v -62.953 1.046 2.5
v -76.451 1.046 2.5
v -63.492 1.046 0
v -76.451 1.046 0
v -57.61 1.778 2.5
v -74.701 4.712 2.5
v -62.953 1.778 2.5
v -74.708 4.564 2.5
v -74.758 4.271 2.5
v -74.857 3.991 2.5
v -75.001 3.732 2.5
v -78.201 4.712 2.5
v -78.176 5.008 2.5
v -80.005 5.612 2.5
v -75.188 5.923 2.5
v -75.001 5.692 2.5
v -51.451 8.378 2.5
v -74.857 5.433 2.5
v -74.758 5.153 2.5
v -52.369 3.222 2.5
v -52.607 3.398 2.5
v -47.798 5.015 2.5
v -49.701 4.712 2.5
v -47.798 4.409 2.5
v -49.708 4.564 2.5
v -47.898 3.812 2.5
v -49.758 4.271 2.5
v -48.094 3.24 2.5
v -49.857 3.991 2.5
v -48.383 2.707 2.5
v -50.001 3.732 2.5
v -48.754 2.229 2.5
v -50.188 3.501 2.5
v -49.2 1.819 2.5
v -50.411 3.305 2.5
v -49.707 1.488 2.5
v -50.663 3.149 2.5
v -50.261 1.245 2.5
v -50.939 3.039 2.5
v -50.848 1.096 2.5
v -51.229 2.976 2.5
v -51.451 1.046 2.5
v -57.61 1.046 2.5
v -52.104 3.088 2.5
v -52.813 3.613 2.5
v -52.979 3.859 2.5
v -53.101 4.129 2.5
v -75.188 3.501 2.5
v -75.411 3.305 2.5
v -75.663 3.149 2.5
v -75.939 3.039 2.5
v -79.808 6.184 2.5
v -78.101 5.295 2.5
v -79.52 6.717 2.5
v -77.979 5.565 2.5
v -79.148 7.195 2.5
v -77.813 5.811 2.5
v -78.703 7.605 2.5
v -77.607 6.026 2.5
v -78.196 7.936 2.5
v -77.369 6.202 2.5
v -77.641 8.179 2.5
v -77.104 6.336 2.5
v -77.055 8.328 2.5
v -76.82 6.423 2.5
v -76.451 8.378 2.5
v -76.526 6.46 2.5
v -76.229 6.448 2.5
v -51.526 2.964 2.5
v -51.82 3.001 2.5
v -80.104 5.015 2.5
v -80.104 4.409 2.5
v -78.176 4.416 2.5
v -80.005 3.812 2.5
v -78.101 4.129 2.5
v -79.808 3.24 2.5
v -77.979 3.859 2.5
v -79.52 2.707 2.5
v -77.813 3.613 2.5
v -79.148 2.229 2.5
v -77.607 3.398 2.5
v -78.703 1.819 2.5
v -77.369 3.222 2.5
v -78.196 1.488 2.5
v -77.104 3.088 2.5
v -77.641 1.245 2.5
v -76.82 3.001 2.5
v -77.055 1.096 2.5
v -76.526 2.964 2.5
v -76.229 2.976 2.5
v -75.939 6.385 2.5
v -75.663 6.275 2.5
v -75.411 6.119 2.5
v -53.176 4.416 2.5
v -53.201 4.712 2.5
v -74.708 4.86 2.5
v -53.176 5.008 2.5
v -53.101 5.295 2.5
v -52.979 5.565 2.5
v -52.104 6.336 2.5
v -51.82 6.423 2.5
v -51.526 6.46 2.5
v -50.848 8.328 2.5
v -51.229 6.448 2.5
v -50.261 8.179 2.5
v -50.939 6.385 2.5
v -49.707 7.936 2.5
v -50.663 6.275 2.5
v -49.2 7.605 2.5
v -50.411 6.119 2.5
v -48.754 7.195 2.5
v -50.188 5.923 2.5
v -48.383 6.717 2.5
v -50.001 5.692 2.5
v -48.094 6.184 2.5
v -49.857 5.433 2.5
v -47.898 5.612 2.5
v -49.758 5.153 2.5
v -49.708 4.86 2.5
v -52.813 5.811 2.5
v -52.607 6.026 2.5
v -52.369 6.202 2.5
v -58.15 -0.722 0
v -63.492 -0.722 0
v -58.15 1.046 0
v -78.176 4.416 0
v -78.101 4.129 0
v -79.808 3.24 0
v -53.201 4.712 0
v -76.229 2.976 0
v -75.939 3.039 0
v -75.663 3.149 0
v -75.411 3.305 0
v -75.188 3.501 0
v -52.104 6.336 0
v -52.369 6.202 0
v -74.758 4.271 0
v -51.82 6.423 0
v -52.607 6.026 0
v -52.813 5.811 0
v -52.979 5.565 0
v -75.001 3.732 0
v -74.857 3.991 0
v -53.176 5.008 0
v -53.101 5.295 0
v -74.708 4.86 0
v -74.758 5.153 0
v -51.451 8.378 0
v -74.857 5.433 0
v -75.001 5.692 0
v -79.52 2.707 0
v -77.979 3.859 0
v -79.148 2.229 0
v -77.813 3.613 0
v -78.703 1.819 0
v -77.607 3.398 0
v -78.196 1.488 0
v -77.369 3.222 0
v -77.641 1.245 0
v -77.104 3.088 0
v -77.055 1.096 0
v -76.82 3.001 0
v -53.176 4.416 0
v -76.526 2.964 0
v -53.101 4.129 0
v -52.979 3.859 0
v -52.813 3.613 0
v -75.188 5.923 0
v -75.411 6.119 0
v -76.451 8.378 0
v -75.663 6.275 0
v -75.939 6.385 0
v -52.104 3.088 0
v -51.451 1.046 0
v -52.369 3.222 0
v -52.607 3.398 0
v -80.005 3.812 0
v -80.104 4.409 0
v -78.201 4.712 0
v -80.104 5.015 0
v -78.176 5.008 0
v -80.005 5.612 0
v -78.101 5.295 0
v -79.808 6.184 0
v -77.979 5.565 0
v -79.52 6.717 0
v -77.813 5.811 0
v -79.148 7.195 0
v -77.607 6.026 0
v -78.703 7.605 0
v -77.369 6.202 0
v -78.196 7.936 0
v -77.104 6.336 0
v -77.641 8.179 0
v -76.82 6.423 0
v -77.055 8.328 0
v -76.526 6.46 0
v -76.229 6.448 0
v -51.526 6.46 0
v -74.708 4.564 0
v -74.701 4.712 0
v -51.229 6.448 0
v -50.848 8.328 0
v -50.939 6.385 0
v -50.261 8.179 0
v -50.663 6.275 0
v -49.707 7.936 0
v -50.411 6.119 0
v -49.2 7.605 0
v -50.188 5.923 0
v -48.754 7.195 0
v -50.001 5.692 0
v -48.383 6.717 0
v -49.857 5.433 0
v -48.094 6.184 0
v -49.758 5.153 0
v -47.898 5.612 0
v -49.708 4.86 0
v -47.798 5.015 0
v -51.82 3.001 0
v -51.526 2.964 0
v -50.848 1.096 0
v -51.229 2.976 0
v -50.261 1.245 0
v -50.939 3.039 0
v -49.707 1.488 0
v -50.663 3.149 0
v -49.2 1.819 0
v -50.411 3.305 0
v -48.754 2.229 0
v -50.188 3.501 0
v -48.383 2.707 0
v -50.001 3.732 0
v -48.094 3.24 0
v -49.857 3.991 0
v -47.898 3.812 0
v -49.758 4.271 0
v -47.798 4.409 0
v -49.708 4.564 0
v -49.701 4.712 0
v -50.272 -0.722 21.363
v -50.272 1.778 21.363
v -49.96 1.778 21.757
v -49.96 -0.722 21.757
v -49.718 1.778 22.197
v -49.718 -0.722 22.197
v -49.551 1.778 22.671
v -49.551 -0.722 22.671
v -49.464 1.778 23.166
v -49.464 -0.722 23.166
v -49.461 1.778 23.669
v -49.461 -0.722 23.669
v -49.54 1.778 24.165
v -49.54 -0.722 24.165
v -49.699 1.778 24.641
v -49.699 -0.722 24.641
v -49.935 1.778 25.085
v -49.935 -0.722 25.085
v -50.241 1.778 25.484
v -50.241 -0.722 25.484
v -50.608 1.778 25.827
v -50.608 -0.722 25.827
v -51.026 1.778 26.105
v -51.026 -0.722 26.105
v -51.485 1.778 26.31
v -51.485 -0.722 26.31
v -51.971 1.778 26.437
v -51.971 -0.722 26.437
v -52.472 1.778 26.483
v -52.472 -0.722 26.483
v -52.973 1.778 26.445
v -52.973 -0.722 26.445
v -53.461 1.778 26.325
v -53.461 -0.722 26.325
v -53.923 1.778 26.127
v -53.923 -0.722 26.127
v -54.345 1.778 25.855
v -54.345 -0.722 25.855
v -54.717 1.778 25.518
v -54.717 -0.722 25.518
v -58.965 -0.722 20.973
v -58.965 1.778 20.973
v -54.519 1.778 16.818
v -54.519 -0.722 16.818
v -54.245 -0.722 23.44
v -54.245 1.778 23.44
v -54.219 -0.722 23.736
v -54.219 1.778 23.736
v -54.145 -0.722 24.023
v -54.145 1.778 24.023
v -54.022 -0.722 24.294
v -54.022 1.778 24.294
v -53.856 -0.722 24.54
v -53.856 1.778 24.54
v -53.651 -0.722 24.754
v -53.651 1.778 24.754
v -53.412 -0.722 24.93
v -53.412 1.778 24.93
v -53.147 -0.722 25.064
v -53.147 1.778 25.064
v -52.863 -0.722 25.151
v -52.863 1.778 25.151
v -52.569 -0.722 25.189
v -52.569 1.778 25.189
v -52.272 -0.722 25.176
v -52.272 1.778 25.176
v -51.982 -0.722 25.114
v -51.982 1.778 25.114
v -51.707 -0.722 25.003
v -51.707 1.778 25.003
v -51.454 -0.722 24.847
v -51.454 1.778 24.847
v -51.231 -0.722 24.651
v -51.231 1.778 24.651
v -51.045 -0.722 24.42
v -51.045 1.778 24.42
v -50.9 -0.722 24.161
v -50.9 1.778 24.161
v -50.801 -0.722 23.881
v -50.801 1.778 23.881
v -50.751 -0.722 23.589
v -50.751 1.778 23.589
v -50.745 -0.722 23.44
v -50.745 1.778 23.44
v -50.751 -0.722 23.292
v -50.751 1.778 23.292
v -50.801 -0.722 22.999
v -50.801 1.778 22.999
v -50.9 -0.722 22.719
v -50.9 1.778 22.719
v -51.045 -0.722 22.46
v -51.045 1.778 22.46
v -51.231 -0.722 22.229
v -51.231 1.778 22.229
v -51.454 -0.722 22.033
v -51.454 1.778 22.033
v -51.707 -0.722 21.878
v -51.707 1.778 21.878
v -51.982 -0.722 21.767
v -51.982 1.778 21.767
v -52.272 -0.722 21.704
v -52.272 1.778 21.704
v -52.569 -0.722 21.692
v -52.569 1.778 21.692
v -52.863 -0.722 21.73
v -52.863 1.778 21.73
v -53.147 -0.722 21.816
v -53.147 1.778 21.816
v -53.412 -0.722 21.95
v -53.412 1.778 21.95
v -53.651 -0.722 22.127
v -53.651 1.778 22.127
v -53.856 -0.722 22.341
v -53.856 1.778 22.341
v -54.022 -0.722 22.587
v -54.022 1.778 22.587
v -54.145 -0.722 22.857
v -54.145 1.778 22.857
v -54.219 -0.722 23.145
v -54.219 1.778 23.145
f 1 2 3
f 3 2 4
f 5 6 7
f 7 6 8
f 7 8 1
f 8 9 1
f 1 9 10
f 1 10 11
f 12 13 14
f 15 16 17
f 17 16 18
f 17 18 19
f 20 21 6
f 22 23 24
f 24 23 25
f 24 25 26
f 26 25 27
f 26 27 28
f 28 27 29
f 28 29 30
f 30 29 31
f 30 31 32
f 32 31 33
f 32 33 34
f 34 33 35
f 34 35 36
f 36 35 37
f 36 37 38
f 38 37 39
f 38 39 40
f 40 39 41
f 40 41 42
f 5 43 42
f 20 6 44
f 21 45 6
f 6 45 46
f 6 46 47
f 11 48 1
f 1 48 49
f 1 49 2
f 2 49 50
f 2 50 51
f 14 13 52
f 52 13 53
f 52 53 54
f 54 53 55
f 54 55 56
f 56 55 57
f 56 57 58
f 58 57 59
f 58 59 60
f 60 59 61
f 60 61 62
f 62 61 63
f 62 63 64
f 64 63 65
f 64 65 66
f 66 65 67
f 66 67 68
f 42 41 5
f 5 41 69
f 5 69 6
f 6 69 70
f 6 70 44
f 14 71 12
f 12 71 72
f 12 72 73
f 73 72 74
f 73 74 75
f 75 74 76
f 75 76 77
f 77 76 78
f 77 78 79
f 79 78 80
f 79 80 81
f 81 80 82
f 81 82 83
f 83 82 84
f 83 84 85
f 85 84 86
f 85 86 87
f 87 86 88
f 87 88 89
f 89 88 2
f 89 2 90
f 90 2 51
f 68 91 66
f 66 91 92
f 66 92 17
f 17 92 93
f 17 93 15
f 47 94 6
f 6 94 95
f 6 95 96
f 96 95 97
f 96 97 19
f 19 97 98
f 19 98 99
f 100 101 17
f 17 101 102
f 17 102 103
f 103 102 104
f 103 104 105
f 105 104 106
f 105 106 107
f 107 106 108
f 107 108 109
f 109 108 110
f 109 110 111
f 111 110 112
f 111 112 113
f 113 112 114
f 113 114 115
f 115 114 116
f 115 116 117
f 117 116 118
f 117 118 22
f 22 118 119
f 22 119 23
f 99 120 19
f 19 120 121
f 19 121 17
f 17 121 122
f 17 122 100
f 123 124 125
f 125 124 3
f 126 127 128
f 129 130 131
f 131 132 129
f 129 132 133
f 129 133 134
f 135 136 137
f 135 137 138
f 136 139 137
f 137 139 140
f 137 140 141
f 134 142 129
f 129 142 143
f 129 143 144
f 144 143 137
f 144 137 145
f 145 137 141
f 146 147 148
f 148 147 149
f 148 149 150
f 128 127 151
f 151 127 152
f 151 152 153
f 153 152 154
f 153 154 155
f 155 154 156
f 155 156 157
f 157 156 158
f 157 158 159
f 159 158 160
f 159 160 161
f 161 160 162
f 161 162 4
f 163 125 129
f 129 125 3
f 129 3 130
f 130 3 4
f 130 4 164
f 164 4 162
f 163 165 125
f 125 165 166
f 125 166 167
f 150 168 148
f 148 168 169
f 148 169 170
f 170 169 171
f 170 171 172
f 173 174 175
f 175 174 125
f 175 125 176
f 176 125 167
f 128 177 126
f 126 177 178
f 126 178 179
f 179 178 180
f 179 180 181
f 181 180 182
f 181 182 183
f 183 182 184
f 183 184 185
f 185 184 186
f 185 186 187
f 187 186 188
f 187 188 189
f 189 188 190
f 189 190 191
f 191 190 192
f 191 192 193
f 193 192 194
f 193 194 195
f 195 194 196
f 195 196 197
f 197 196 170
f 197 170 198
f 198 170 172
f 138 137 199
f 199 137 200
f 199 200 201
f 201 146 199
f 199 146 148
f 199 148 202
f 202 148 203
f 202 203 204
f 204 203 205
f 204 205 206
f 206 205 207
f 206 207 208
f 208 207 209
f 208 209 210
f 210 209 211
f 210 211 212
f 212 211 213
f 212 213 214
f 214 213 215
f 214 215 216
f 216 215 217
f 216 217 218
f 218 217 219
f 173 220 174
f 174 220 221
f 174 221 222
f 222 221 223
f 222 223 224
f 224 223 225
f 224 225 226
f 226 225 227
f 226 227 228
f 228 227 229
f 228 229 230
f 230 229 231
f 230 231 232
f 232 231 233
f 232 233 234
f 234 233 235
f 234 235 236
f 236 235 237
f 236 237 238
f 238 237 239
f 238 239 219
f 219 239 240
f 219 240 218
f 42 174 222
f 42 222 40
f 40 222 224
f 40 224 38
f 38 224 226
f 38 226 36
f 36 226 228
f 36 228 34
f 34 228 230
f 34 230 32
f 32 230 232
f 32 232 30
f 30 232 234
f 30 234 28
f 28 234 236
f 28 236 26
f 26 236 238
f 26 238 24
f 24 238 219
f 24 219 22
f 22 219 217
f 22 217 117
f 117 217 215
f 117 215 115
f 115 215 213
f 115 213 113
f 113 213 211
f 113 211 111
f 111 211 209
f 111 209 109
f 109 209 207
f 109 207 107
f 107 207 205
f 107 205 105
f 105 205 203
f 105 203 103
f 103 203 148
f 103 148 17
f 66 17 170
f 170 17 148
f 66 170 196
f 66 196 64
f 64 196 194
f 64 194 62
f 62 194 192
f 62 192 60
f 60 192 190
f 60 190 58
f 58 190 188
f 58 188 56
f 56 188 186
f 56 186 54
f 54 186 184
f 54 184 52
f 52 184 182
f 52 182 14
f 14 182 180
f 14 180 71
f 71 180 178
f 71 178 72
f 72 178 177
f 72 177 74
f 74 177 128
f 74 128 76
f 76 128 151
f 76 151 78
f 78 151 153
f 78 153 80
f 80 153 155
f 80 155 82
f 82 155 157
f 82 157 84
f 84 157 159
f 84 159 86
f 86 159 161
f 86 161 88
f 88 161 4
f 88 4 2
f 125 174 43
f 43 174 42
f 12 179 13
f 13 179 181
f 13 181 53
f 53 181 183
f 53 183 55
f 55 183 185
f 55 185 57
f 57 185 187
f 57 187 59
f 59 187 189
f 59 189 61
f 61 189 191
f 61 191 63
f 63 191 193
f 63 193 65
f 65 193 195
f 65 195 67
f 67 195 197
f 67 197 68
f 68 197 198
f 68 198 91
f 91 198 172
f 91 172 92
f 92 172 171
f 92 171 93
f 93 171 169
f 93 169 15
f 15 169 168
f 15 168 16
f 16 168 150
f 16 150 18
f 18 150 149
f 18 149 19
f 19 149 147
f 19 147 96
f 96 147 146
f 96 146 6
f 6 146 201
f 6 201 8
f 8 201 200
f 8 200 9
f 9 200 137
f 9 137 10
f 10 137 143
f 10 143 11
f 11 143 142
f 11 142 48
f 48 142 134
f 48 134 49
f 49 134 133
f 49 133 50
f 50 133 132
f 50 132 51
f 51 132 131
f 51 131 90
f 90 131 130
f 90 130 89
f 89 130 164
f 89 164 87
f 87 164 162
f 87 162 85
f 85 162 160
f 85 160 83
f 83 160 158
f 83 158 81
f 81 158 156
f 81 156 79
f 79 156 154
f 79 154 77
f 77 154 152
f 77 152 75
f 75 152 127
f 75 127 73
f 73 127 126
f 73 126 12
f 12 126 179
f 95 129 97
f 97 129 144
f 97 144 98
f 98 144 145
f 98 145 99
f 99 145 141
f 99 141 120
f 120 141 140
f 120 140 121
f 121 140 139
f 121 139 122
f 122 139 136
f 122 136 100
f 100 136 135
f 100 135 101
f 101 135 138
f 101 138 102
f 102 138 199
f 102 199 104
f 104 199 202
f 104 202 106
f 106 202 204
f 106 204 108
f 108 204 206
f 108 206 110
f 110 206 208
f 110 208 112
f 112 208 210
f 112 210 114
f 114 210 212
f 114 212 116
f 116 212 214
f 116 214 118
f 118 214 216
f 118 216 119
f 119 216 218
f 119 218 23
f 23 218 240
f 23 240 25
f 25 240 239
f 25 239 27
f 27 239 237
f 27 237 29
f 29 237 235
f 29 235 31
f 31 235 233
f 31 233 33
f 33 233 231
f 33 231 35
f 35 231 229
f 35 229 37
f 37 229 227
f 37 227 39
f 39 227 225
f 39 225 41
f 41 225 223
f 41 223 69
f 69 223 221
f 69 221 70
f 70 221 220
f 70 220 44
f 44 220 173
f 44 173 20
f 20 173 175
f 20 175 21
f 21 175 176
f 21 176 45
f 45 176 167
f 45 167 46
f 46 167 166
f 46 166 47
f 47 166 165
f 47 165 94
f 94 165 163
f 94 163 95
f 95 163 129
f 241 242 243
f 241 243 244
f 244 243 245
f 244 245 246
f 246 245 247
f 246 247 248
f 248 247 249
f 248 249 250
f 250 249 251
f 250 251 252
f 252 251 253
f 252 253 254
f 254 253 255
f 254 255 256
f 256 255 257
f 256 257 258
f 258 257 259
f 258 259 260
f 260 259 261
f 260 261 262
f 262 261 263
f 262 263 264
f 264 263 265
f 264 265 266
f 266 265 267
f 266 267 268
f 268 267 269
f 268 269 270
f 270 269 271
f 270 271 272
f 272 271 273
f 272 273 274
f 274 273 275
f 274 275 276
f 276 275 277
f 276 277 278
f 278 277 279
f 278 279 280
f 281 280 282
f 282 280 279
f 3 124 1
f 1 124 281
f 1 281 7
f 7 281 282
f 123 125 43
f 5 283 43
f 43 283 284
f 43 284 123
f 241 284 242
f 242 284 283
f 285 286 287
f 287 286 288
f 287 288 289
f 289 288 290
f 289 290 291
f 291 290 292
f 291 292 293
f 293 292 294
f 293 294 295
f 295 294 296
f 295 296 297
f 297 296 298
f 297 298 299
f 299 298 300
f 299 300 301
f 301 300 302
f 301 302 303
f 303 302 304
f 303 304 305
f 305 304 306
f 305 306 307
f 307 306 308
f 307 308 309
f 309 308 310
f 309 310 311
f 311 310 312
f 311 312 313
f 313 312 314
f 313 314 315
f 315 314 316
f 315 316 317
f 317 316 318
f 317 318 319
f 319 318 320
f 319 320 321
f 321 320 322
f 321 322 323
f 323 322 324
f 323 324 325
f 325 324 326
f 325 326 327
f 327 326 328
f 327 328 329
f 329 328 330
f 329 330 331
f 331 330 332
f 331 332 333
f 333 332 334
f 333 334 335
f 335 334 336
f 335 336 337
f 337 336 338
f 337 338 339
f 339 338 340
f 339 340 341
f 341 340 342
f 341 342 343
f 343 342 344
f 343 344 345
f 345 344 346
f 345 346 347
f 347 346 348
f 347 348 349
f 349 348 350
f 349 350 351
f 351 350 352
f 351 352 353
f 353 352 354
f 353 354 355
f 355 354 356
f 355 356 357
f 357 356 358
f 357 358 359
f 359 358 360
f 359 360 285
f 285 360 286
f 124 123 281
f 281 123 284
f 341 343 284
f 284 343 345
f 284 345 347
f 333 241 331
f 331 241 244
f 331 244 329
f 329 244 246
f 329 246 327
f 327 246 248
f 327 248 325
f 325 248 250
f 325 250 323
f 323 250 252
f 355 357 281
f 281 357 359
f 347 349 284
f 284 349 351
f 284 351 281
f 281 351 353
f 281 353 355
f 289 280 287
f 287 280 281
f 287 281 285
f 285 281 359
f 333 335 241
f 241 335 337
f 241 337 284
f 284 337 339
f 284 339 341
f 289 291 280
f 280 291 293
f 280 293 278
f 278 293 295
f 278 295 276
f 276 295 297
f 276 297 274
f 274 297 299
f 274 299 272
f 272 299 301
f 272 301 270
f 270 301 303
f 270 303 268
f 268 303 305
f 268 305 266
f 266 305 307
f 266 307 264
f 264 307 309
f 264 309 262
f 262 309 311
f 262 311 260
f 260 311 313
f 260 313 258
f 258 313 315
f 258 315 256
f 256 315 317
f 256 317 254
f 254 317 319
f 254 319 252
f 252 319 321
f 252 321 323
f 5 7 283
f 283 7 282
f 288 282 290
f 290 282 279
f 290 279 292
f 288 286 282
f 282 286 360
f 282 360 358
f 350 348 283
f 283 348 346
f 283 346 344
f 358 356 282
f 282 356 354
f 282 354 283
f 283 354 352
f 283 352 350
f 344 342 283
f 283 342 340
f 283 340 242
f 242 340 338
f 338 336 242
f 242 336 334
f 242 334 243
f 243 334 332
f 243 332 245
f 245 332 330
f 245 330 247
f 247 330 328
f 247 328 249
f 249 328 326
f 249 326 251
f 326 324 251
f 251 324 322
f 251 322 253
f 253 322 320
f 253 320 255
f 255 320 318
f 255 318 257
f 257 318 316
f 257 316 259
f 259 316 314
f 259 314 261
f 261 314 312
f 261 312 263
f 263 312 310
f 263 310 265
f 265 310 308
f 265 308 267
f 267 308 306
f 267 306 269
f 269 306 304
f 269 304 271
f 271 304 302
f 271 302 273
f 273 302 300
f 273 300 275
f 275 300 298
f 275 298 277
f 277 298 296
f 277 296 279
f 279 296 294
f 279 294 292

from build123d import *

# Parameters (mm, degrees)
SKETCH1_R           = 1.75
BOSS_EXTRUDE1_DEPTH = 2.5
SKETCH2_R           = 1.75
BOSS_EXTRUDE2_DEPTH = 2.5


with BuildPart() as part:
    # Sketch1 → Boss-Extrude1 (new body)
    with BuildSketch(Plane.XY):
        with BuildLine():
            Line((-51.451246925, 1.046447779), (-76.451246925, 1.046447779))
            ThreePointArc((-76.451246925, 1.046447779), (-80.116799147, 4.712), (-76.451246925, 8.377552221))
            Line((-76.451246925, 8.377552221), (-51.451246925, 8.377552221))
            ThreePointArc((-51.451246925, 8.377552221), (-47.785694704, 4.712), (-51.451246925, 1.046447779))
        make_face()
        with Locations((-76.451246925, 4.712)):
            Circle(SKETCH1_R, mode=Mode.SUBTRACT)
        with Locations((-51.451246925, 4.712)):
            Circle(SKETCH1_R, mode=Mode.SUBTRACT)
    extrude(amount=BOSS_EXTRUDE1_DEPTH)

    # Sketch2 → Boss-Extrude2 (add)
    with BuildSketch(Plane.XZ.offset(-1.777778923)):
        with BuildLine():
            Line((-58.149633546, 0), (-54.518808092, 16.818393056))
            Line((-54.518808092, 16.818393056), (-50.271714816, 21.362782861))
            ThreePointArc((-50.271714816, 21.362782861), (-50.417137666, 25.663144264), (-54.717499069, 25.517721415))
            Line((-54.717499069, 25.517721415), (-58.964592345, 20.97333161))
            Line((-58.964592345, 20.97333161), (-63.492403415, 0))
            Line((-63.492403415, 0), (-58.149633546, 0))
        make_face()
        with Locations((-52.494606943, 23.440252138)):
            Circle(SKETCH2_R, mode=Mode.SUBTRACT)
    extrude(amount=BOSS_EXTRUDE2_DEPTH)


solid = part.part
